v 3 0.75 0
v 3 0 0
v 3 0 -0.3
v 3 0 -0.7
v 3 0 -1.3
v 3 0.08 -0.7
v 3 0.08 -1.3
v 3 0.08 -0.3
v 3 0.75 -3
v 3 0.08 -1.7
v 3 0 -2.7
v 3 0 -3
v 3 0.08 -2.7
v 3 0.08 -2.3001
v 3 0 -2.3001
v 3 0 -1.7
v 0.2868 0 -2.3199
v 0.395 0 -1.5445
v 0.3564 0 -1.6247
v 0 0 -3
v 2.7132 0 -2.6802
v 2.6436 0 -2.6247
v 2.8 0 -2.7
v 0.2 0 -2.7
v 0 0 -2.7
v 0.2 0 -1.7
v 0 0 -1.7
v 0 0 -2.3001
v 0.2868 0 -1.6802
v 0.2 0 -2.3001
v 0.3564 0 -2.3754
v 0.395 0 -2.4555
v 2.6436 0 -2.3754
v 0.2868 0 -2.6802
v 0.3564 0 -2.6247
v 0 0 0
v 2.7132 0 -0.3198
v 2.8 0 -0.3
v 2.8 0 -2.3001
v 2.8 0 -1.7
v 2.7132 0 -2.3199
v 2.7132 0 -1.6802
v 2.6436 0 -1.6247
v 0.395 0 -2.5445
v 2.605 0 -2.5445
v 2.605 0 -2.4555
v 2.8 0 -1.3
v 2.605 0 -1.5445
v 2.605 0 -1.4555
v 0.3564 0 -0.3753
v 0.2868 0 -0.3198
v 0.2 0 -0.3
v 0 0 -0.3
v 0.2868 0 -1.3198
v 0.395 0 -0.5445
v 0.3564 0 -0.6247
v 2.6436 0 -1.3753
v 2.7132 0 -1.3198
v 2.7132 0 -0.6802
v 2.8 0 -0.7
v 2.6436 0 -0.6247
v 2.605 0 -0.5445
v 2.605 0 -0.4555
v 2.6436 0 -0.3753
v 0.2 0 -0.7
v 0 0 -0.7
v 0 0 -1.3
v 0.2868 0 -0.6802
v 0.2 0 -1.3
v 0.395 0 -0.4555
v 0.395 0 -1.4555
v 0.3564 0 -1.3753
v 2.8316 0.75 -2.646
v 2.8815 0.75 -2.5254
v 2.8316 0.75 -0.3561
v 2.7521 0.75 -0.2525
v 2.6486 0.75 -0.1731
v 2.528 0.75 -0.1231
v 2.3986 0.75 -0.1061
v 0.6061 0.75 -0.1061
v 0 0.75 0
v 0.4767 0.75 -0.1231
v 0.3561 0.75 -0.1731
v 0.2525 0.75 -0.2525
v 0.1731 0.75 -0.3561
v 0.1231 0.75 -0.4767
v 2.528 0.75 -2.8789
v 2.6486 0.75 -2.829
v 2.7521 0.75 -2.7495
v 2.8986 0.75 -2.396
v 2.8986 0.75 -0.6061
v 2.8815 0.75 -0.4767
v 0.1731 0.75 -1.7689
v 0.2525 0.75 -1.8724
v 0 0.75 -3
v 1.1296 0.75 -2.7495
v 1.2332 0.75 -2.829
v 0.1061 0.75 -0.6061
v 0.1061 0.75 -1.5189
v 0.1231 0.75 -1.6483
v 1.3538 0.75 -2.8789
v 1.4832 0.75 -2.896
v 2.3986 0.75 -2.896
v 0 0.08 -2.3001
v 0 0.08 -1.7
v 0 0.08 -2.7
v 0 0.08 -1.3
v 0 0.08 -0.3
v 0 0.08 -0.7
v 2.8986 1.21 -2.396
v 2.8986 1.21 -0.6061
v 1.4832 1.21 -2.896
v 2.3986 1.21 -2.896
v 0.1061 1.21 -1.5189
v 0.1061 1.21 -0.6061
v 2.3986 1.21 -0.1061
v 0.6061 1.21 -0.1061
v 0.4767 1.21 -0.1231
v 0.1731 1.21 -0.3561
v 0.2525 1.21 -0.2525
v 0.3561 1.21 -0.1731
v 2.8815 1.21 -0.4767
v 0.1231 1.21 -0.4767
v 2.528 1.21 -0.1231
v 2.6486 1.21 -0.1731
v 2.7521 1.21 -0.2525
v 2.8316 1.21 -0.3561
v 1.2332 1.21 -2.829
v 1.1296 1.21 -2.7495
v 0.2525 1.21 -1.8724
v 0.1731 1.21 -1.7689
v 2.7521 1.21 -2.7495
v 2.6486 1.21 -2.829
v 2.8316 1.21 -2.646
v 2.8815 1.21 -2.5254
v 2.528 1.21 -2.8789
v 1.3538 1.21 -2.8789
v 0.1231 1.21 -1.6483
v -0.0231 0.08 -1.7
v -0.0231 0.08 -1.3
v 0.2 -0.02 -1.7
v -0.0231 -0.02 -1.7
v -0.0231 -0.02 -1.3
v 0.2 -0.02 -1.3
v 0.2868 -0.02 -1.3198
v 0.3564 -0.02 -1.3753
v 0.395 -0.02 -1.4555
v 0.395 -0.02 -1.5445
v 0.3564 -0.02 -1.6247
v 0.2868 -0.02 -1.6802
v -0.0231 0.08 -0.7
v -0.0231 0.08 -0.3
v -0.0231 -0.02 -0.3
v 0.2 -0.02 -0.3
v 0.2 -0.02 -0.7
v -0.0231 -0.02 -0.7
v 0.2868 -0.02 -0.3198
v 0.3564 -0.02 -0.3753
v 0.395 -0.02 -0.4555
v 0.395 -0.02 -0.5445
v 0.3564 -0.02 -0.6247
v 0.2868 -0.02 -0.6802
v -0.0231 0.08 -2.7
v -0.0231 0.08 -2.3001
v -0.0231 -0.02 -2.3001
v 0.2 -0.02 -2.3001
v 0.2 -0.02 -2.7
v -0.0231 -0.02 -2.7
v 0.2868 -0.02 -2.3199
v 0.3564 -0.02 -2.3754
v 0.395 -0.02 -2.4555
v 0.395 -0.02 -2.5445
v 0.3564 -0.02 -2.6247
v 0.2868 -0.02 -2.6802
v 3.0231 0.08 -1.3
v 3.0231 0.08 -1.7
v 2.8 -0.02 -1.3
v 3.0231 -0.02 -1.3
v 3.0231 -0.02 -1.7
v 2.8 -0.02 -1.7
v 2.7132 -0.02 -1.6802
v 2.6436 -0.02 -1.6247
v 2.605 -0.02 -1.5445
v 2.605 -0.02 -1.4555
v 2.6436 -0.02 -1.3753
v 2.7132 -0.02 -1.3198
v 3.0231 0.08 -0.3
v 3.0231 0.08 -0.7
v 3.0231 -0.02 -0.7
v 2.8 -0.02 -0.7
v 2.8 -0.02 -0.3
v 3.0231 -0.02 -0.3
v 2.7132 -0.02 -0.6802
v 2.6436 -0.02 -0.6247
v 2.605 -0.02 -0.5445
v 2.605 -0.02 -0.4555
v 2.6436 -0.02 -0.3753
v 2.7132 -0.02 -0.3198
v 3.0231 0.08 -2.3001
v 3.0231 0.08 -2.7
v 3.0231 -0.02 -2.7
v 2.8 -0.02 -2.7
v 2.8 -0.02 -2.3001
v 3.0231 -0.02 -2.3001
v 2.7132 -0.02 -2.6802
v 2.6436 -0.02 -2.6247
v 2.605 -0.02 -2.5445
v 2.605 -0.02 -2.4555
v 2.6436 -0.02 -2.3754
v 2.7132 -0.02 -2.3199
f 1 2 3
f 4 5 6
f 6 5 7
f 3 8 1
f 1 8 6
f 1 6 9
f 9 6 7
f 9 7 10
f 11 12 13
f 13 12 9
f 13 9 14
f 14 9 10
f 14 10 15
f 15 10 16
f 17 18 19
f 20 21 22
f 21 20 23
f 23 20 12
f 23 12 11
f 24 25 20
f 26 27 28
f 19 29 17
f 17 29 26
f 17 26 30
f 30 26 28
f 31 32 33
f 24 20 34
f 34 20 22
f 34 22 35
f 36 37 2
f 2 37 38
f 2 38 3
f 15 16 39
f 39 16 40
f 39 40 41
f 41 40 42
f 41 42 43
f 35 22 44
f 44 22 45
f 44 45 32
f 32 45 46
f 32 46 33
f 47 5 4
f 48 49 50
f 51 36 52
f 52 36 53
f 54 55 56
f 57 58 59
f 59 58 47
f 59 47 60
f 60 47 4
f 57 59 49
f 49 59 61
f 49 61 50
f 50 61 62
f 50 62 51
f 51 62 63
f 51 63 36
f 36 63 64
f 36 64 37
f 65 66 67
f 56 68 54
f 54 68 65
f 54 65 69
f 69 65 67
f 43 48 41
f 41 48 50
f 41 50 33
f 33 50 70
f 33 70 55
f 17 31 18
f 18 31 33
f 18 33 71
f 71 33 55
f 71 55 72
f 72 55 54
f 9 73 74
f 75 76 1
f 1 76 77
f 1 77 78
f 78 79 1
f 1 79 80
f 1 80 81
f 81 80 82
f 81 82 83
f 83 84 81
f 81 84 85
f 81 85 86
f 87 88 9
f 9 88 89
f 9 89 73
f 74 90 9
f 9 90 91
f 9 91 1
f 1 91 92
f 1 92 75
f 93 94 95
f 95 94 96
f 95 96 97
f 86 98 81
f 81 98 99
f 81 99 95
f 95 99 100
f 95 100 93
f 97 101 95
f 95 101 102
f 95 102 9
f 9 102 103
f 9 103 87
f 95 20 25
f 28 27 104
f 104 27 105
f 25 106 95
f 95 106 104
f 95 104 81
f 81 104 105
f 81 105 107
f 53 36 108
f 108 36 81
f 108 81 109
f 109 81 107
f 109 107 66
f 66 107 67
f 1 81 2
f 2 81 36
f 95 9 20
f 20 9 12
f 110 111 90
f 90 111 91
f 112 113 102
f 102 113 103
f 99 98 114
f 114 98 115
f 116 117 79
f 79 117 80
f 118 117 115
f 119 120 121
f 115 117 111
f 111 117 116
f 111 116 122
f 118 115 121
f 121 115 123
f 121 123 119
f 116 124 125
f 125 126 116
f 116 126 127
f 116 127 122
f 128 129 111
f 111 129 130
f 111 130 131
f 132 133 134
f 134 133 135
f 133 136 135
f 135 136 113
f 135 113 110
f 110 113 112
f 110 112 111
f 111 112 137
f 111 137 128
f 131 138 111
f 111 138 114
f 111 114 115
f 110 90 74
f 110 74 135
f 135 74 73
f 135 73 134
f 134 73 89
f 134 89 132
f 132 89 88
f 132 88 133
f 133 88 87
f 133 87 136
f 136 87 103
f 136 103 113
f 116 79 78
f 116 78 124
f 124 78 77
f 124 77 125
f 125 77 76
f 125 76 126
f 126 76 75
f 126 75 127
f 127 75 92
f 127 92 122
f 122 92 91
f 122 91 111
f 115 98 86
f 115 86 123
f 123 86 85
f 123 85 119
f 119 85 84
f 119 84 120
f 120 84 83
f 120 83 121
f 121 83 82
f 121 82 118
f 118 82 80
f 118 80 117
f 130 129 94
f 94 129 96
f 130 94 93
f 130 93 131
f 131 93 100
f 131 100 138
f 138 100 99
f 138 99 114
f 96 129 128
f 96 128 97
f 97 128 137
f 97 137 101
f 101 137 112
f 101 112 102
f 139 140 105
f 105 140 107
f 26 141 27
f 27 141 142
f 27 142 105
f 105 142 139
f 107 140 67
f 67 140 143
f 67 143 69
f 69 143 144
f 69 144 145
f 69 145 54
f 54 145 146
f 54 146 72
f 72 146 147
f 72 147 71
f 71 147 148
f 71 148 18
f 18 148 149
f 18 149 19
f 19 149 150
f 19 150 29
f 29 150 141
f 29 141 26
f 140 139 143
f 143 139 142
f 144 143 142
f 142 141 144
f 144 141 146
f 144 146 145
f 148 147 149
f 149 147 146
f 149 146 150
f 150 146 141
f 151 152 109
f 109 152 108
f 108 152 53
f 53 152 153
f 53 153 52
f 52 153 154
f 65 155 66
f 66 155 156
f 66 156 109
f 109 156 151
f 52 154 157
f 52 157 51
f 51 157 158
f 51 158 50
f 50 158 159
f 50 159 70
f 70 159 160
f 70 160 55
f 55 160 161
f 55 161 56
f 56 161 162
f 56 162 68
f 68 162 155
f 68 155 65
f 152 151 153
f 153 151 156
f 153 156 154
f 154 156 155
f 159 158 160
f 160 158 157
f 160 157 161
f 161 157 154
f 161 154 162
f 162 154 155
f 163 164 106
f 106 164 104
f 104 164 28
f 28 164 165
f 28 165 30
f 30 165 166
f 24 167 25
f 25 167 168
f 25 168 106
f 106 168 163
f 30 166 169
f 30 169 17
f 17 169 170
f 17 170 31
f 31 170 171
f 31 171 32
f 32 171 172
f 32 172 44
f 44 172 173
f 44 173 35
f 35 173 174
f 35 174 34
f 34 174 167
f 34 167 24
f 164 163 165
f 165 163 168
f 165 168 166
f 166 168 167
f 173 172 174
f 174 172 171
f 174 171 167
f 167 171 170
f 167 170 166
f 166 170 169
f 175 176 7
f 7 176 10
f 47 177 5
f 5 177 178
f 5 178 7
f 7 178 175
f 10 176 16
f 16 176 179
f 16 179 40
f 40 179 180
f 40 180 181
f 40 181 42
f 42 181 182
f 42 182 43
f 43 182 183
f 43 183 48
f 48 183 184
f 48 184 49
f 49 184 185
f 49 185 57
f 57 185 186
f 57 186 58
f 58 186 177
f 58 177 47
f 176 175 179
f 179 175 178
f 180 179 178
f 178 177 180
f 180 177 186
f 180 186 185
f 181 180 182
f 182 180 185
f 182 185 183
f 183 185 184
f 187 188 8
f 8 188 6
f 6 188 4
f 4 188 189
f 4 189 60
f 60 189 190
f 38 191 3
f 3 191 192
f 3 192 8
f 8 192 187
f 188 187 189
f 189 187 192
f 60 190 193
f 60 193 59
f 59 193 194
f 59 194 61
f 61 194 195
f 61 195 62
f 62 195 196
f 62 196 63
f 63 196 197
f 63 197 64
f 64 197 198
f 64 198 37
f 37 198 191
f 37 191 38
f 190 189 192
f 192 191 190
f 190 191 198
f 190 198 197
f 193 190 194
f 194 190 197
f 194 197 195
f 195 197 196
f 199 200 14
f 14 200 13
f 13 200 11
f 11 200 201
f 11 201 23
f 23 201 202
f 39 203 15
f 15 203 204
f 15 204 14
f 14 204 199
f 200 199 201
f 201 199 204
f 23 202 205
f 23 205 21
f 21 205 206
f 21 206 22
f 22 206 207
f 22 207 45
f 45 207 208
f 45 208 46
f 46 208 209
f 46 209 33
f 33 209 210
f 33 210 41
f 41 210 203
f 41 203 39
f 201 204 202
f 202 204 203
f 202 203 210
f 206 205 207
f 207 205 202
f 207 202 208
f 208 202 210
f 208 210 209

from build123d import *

# Parameters (mm, degrees)
SKETCH1_W           = 3
SKETCH1_H           = 3
BOSS_EXTRUDE1_DEPTH = 0.75
SKETCH2_W           = 2.792510514
SKETCH2_H           = 2.789908115
BOSS_EXTRUDE2_DEPTH = 0.46
FILLET1_R           = 0.5
CHAMFER1_SIZE       = 1.17
FILLET2_R           = 0.5
BOSS_EXTRUDE3_START = 0.02
BOSS_EXTRUDE3_DEPTH = 0.1


with BuildPart() as part:
    # Sketch1 → Boss-Extrude1 (new body)
    with BuildSketch(Plane(origin=(0, 0, 0), x_dir=(1, 0, 0), z_dir=(0, 1, 0))):
        with Locations((1.5, 1.5)):
            Rectangle(SKETCH1_W, SKETCH1_H)
    extrude(amount=BOSS_EXTRUDE1_DEPTH)

    # Sketch2 → Boss-Extrude2 (add)
    with BuildSketch(Plane(origin=(0, 0.75, 0), x_dir=(1, 0, 0), z_dir=(0, 1, 0))):
        with Locations((1.502321274, 1.501020074)):
            Rectangle(SKETCH2_W, SKETCH2_H)
    extrude(amount=BOSS_EXTRUDE2_DEPTH)

    # Fillet1
    fillet1_edges = [part.edges().sort_by_distance(p)[0] for p in [
        (2.898576531, 0.98, -0.106066017),
        (2.898576531, 0.98, -2.895974132),
        (0.106066017, 0.98, -0.106066017),
    ]]
    fillet(fillet1_edges, radius=FILLET1_R)

    # Chamfer1
    chamfer1_edges = [part.edges().sort_by_distance(p)[0] for p in [
        (0.106066017, 0.98, -2.895974132),
    ]]
    chamfer(chamfer1_edges, length=CHAMFER1_SIZE)

    # Fillet2
    fillet2_edges = [part.edges().sort_by_distance(p)[0] for p in [
        (0.106066017, 0.98, -1.725974132),
        (1.276066017, 0.98, -2.895974132),
    ]]
    fillet(fillet2_edges, radius=FILLET2_R)

    # Sketch4 → Boss-Extrude3 (add)
    with BuildSketch(Plane(origin=(0, 0, 0), x_dir=(-1, 0, 0), z_dir=(0, -1, 0)).offset(BOSS_EXTRUDE3_START)):
        with BuildLine():
            Line((-0.2, 0.3), (0, 0.3))
            Line((0, 0.3), (0.02310672, 0.3))
            Line((0.02310672, 0.3), (0.02310672, 0.7))
            Line((0.02310672, 0.7), (0, 0.7))
            Line((0, 0.7), (-0.2, 0.7))
            ThreePointArc((-0.2, 0.7), (-0.4, 0.5), (-0.2, 0.3))
        make_face()
        with BuildLine():
            Line((-0.2, 1.3), (0, 1.3))
            Line((0, 1.3), (0.02310672, 1.3))
            Line((0.02310672, 1.3), (0.02310672, 1.7))
            Line((0.02310672, 1.7), (0, 1.7))
            Line((0, 1.7), (-0.2, 1.7))
            ThreePointArc((-0.2, 1.7), (-0.4, 1.5), (-0.2, 1.3))
        make_face()
        with BuildLine():
            Line((-0.2, 2.7), (0, 2.7))
            Line((0, 2.7), (0.02310672, 2.7))
            Line((0.02310672, 2.7), (0.02310672, 2.300077799))
            Line((0.02310672, 2.300077799), (0, 2.300077799))
            Line((0, 2.300077799), (-0.2, 2.300077799))
            ThreePointArc((-0.2, 2.300077799), (-0.4, 2.500038899), (-0.2, 2.7))
        make_face()
    boss_extrude3 = extrude(amount=-BOSS_EXTRUDE3_DEPTH)

    # Mirror1: Boss-Extrude3 across plane
    add(boss_extrude3.mirror(Plane(origin=(1.5, 0, 0), x_dir=(0, 0, 1), z_dir=(1, 0, 0))))


solid = part.part
